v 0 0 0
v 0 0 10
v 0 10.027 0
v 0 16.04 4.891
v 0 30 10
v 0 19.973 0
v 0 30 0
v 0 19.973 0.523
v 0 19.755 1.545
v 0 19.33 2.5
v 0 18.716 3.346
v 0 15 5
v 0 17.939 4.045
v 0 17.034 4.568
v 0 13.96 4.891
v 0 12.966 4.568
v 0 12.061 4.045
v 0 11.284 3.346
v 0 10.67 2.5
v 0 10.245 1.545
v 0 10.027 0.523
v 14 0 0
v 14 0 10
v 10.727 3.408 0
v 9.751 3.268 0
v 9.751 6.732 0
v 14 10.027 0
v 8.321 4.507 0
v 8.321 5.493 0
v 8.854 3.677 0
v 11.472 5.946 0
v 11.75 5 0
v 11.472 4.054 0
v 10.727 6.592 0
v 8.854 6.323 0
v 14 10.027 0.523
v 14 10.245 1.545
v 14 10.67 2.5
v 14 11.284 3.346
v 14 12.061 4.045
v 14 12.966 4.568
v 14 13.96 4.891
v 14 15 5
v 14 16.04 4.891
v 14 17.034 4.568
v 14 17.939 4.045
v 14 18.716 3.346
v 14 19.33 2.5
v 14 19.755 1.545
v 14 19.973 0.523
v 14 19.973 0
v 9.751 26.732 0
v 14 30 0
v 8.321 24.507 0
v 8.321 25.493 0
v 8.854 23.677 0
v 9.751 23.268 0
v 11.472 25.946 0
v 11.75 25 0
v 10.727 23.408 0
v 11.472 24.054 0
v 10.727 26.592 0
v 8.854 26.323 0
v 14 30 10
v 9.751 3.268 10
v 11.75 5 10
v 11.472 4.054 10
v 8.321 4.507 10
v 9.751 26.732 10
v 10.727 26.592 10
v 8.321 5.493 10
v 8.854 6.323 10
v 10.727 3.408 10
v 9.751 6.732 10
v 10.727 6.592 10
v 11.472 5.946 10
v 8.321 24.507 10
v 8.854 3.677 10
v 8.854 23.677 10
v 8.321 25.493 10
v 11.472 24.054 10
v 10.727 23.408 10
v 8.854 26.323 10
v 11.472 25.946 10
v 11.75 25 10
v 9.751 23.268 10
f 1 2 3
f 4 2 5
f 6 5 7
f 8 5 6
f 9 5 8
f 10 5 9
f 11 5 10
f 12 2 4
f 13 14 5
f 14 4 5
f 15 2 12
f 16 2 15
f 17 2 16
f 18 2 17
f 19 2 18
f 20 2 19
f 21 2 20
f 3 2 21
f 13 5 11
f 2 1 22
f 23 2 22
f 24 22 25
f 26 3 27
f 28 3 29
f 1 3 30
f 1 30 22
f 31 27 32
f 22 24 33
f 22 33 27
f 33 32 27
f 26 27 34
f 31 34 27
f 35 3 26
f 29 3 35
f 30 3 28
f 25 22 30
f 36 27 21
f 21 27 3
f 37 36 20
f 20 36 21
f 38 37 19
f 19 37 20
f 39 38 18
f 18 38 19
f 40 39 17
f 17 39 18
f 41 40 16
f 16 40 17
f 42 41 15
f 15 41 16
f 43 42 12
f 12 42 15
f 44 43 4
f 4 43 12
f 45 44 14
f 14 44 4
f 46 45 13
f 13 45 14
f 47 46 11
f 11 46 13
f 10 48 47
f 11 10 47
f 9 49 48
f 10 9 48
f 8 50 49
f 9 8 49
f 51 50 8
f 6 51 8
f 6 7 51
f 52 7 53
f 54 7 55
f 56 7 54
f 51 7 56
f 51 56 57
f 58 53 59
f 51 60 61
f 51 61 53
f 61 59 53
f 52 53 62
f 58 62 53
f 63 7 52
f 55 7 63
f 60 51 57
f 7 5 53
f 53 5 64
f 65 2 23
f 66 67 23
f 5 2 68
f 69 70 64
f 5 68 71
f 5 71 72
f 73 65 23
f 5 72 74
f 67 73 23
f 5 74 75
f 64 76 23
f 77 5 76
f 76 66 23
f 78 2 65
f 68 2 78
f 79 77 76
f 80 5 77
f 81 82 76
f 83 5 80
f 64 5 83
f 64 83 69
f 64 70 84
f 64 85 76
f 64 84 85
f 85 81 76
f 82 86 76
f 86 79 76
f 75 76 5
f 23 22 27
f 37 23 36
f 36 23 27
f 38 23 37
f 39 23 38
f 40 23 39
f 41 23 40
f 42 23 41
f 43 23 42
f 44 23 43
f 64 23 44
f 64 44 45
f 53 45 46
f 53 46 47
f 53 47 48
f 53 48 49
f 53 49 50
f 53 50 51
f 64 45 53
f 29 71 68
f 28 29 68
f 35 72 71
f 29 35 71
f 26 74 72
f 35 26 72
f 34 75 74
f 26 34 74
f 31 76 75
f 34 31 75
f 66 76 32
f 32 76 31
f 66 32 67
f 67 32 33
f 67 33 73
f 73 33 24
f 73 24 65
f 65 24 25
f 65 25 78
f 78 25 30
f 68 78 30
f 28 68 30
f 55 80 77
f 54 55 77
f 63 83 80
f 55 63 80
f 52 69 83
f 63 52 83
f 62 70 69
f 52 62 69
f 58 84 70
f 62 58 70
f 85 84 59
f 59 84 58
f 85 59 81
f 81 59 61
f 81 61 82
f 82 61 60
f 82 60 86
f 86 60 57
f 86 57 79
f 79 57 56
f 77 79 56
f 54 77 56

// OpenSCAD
barwidth = 20;
width_ridge=4;
widthNema17=43;
nema17holeOffset =6;
nema17innerHole=25/2;
nema17Shaft=8/2;
motorThickNess=5;
offsetx =9;
offsety  =9;
barpositionz=30;
rodwidth =8;
nutwidth=14;

height = 30;
width = barwidth;

thickness=10;
spacing_bars = 50;
largeCircle = 70.0;
holeSize=5.5;

holes = [
	[width/2,5,3.5],
	[width/2,height-5,3.5],
];



difference() {
union() {

cube([width-6,height,thickness],false);


}



	for(i = holes) {
		translate([ i[0],i[1],0])
			cylinder(h=100,r=i[2]/2, center = false, $fs=1);
	}
rotate([0,90,0])
translate([0,height/2,-10])
	cylinder(h=100,r=5, center = false, $fs=1);
}	
